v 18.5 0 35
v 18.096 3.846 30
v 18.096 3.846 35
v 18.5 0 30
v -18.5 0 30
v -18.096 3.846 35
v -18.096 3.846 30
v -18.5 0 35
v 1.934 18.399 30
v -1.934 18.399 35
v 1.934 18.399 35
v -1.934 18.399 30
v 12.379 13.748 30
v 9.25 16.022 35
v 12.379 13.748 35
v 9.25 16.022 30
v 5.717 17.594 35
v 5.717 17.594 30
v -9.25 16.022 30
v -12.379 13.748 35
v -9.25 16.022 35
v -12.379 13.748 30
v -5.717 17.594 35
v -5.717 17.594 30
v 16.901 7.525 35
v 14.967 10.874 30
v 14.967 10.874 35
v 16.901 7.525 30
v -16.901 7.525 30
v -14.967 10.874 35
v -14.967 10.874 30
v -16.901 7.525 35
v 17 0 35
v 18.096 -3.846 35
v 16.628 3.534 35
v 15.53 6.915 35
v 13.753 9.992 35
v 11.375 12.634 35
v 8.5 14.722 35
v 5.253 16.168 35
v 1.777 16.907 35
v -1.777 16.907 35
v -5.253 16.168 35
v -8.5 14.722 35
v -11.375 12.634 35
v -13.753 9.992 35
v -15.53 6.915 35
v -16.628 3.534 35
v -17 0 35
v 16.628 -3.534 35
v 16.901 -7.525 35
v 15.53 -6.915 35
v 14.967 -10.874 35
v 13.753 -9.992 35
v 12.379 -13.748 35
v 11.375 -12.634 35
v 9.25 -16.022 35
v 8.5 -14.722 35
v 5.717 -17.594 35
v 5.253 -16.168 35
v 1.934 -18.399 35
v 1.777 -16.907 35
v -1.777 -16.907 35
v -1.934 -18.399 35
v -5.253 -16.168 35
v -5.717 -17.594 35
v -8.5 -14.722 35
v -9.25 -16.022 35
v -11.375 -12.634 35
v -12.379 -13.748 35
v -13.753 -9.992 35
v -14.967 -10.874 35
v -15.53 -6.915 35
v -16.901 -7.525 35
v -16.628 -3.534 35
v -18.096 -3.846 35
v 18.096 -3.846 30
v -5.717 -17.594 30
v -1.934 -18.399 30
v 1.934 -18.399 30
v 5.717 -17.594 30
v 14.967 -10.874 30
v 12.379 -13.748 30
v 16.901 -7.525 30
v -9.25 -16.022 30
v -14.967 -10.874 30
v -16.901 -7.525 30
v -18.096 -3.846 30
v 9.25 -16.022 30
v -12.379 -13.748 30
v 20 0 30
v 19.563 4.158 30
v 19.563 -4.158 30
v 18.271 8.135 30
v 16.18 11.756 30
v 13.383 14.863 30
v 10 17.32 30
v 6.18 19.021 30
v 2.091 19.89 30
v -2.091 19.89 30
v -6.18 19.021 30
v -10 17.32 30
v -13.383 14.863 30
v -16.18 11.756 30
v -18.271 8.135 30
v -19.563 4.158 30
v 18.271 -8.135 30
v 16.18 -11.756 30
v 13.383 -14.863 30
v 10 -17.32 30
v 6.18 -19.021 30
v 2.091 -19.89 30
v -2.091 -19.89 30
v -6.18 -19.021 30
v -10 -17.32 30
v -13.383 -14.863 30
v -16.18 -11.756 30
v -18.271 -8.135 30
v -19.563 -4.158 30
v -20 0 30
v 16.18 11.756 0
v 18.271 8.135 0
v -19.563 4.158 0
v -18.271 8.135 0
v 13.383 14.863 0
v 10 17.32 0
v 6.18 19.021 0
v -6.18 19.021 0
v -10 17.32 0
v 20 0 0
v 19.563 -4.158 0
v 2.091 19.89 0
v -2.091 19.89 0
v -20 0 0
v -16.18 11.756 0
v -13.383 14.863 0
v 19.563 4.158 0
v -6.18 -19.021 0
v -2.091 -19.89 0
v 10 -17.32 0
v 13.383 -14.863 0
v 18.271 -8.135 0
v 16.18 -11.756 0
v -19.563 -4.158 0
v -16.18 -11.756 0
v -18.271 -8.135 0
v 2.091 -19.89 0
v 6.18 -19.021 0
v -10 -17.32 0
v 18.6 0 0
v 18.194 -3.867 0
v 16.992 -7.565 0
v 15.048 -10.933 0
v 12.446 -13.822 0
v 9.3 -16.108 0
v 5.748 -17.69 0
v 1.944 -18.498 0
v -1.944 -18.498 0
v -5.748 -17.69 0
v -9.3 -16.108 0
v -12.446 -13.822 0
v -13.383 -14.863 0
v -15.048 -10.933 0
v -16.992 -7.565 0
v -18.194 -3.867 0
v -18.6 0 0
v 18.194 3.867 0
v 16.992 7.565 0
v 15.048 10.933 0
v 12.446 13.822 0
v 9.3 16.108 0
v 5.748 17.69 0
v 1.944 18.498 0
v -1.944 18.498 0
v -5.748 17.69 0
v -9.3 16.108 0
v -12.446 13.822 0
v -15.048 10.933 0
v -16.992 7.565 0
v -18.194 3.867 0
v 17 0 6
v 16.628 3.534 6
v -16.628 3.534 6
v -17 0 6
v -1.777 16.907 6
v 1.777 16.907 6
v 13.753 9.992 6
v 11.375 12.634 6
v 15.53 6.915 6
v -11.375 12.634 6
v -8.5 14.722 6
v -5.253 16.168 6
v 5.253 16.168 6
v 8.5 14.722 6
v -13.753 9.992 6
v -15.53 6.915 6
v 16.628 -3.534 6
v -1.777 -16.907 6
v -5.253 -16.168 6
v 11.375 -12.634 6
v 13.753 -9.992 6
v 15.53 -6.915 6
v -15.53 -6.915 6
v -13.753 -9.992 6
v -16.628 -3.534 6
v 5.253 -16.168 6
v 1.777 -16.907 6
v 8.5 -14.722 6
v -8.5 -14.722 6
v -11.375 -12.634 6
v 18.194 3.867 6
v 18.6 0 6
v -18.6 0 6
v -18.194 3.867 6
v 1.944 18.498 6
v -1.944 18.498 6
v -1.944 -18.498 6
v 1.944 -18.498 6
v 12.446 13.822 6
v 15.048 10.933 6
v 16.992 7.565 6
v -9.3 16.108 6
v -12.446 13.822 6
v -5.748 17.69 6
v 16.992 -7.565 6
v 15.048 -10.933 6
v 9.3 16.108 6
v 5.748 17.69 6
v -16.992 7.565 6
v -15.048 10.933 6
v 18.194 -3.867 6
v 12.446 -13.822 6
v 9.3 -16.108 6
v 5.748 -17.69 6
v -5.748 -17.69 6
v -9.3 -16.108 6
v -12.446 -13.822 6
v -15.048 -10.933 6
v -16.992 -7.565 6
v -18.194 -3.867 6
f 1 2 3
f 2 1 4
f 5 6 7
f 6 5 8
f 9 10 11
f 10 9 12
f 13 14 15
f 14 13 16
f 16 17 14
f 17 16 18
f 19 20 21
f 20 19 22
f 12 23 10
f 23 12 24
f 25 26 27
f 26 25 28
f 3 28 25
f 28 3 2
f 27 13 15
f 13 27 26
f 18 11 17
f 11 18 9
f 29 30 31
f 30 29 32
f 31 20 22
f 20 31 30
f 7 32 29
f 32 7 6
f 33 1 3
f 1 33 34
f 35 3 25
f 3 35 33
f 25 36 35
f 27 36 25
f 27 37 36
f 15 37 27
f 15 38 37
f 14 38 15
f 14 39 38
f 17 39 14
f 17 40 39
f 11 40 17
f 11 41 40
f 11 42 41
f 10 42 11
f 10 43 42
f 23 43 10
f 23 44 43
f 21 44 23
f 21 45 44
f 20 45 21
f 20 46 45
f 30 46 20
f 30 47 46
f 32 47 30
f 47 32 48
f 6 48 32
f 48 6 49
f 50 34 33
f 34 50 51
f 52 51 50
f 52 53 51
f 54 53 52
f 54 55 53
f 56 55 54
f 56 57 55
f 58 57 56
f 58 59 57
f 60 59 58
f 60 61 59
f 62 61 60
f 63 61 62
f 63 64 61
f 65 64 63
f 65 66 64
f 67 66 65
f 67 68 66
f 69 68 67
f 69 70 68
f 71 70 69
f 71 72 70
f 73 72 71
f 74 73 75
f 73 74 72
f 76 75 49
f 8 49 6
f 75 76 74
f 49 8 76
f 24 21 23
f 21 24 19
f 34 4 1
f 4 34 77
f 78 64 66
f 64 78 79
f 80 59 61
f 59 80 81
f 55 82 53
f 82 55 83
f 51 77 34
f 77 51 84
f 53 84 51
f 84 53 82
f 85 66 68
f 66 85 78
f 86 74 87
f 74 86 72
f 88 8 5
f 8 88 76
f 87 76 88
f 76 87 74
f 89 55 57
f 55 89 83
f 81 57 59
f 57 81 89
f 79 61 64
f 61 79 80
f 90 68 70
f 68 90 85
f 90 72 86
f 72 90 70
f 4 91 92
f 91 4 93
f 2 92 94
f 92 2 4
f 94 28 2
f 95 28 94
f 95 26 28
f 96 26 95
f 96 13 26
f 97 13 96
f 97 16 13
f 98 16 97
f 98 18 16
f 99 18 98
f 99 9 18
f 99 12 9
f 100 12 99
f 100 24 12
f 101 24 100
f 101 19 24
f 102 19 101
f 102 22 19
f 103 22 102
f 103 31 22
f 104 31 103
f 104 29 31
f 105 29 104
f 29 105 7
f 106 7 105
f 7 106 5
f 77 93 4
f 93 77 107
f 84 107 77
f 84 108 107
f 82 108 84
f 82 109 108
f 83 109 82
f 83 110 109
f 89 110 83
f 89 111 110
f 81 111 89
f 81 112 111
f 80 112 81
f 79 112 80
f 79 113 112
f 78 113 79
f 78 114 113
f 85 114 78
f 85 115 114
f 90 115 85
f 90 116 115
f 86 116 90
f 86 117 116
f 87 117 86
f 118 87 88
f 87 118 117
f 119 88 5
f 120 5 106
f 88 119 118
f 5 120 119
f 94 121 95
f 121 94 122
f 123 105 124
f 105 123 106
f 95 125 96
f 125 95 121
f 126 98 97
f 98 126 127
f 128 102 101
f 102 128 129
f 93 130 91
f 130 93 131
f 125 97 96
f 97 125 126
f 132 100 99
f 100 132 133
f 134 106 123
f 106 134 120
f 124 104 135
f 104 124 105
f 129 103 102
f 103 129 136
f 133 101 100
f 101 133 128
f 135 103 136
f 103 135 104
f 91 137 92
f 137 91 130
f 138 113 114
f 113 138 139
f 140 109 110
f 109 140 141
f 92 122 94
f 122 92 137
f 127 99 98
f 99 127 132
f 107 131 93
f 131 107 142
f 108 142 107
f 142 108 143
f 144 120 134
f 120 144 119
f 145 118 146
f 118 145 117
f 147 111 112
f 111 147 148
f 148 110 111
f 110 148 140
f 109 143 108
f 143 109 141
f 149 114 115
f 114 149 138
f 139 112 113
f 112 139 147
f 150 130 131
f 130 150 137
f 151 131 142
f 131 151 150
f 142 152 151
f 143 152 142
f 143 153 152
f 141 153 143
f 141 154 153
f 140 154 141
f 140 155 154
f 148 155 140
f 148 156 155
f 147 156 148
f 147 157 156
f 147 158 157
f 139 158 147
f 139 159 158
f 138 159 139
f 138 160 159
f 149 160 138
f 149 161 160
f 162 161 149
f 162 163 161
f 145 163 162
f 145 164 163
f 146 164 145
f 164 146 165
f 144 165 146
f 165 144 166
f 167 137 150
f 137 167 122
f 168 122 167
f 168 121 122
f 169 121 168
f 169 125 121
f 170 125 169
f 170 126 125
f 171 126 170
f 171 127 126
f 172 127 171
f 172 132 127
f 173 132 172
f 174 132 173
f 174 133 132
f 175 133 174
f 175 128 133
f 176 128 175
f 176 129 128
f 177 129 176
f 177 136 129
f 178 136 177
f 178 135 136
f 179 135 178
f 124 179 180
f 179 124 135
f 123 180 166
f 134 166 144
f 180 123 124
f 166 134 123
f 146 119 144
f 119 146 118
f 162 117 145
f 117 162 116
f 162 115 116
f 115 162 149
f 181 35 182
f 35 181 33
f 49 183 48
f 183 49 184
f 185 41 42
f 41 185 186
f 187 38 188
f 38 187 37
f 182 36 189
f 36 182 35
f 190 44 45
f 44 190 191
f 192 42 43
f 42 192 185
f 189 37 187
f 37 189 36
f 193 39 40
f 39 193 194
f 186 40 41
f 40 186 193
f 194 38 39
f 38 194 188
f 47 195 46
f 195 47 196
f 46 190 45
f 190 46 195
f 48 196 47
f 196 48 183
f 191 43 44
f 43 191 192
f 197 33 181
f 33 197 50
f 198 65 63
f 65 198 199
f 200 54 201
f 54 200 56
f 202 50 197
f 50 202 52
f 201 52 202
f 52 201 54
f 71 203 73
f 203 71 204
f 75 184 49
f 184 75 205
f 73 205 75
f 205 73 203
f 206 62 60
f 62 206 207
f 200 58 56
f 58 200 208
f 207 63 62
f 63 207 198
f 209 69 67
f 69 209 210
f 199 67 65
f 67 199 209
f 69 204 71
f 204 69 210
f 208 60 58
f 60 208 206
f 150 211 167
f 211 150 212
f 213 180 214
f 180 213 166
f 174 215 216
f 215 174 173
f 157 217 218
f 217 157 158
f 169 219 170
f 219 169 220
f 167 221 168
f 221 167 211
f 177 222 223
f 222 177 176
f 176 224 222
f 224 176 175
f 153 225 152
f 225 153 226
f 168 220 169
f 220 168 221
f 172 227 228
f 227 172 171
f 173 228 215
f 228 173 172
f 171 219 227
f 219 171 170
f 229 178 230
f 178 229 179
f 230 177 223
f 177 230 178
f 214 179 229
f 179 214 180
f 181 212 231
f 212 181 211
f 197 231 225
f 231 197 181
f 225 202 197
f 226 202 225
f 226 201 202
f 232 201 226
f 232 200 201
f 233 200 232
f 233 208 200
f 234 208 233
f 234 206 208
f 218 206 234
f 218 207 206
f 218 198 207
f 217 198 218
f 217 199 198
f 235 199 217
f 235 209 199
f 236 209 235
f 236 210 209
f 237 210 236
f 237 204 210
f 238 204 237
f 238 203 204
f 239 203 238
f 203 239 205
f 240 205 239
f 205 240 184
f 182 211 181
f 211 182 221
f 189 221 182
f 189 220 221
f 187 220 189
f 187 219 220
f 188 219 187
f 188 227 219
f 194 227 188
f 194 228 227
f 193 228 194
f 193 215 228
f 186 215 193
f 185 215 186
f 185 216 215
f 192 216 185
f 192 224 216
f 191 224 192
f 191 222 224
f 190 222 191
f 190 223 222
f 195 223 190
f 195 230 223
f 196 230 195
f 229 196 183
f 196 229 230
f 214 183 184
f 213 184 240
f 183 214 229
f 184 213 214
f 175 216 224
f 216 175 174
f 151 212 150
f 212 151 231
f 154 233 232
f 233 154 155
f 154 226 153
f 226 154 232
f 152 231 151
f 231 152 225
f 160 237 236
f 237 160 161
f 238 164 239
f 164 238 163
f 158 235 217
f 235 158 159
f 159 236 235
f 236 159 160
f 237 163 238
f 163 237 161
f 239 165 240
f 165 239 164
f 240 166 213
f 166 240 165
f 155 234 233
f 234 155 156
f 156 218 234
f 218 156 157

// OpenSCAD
difference(){
    union(){
        translate([0,0,30]) cylinder(h=5, d=37, center=false);
        translate([0,0,0]) cylinder(h=30, d=40, center=false);
    }
    translate([0,0,-0.1]) cylinder(h=37, d=34, center=false);
    translate([0,0,-0.1]) cylinder(h=6.1, d=37.2, center=false);

}
